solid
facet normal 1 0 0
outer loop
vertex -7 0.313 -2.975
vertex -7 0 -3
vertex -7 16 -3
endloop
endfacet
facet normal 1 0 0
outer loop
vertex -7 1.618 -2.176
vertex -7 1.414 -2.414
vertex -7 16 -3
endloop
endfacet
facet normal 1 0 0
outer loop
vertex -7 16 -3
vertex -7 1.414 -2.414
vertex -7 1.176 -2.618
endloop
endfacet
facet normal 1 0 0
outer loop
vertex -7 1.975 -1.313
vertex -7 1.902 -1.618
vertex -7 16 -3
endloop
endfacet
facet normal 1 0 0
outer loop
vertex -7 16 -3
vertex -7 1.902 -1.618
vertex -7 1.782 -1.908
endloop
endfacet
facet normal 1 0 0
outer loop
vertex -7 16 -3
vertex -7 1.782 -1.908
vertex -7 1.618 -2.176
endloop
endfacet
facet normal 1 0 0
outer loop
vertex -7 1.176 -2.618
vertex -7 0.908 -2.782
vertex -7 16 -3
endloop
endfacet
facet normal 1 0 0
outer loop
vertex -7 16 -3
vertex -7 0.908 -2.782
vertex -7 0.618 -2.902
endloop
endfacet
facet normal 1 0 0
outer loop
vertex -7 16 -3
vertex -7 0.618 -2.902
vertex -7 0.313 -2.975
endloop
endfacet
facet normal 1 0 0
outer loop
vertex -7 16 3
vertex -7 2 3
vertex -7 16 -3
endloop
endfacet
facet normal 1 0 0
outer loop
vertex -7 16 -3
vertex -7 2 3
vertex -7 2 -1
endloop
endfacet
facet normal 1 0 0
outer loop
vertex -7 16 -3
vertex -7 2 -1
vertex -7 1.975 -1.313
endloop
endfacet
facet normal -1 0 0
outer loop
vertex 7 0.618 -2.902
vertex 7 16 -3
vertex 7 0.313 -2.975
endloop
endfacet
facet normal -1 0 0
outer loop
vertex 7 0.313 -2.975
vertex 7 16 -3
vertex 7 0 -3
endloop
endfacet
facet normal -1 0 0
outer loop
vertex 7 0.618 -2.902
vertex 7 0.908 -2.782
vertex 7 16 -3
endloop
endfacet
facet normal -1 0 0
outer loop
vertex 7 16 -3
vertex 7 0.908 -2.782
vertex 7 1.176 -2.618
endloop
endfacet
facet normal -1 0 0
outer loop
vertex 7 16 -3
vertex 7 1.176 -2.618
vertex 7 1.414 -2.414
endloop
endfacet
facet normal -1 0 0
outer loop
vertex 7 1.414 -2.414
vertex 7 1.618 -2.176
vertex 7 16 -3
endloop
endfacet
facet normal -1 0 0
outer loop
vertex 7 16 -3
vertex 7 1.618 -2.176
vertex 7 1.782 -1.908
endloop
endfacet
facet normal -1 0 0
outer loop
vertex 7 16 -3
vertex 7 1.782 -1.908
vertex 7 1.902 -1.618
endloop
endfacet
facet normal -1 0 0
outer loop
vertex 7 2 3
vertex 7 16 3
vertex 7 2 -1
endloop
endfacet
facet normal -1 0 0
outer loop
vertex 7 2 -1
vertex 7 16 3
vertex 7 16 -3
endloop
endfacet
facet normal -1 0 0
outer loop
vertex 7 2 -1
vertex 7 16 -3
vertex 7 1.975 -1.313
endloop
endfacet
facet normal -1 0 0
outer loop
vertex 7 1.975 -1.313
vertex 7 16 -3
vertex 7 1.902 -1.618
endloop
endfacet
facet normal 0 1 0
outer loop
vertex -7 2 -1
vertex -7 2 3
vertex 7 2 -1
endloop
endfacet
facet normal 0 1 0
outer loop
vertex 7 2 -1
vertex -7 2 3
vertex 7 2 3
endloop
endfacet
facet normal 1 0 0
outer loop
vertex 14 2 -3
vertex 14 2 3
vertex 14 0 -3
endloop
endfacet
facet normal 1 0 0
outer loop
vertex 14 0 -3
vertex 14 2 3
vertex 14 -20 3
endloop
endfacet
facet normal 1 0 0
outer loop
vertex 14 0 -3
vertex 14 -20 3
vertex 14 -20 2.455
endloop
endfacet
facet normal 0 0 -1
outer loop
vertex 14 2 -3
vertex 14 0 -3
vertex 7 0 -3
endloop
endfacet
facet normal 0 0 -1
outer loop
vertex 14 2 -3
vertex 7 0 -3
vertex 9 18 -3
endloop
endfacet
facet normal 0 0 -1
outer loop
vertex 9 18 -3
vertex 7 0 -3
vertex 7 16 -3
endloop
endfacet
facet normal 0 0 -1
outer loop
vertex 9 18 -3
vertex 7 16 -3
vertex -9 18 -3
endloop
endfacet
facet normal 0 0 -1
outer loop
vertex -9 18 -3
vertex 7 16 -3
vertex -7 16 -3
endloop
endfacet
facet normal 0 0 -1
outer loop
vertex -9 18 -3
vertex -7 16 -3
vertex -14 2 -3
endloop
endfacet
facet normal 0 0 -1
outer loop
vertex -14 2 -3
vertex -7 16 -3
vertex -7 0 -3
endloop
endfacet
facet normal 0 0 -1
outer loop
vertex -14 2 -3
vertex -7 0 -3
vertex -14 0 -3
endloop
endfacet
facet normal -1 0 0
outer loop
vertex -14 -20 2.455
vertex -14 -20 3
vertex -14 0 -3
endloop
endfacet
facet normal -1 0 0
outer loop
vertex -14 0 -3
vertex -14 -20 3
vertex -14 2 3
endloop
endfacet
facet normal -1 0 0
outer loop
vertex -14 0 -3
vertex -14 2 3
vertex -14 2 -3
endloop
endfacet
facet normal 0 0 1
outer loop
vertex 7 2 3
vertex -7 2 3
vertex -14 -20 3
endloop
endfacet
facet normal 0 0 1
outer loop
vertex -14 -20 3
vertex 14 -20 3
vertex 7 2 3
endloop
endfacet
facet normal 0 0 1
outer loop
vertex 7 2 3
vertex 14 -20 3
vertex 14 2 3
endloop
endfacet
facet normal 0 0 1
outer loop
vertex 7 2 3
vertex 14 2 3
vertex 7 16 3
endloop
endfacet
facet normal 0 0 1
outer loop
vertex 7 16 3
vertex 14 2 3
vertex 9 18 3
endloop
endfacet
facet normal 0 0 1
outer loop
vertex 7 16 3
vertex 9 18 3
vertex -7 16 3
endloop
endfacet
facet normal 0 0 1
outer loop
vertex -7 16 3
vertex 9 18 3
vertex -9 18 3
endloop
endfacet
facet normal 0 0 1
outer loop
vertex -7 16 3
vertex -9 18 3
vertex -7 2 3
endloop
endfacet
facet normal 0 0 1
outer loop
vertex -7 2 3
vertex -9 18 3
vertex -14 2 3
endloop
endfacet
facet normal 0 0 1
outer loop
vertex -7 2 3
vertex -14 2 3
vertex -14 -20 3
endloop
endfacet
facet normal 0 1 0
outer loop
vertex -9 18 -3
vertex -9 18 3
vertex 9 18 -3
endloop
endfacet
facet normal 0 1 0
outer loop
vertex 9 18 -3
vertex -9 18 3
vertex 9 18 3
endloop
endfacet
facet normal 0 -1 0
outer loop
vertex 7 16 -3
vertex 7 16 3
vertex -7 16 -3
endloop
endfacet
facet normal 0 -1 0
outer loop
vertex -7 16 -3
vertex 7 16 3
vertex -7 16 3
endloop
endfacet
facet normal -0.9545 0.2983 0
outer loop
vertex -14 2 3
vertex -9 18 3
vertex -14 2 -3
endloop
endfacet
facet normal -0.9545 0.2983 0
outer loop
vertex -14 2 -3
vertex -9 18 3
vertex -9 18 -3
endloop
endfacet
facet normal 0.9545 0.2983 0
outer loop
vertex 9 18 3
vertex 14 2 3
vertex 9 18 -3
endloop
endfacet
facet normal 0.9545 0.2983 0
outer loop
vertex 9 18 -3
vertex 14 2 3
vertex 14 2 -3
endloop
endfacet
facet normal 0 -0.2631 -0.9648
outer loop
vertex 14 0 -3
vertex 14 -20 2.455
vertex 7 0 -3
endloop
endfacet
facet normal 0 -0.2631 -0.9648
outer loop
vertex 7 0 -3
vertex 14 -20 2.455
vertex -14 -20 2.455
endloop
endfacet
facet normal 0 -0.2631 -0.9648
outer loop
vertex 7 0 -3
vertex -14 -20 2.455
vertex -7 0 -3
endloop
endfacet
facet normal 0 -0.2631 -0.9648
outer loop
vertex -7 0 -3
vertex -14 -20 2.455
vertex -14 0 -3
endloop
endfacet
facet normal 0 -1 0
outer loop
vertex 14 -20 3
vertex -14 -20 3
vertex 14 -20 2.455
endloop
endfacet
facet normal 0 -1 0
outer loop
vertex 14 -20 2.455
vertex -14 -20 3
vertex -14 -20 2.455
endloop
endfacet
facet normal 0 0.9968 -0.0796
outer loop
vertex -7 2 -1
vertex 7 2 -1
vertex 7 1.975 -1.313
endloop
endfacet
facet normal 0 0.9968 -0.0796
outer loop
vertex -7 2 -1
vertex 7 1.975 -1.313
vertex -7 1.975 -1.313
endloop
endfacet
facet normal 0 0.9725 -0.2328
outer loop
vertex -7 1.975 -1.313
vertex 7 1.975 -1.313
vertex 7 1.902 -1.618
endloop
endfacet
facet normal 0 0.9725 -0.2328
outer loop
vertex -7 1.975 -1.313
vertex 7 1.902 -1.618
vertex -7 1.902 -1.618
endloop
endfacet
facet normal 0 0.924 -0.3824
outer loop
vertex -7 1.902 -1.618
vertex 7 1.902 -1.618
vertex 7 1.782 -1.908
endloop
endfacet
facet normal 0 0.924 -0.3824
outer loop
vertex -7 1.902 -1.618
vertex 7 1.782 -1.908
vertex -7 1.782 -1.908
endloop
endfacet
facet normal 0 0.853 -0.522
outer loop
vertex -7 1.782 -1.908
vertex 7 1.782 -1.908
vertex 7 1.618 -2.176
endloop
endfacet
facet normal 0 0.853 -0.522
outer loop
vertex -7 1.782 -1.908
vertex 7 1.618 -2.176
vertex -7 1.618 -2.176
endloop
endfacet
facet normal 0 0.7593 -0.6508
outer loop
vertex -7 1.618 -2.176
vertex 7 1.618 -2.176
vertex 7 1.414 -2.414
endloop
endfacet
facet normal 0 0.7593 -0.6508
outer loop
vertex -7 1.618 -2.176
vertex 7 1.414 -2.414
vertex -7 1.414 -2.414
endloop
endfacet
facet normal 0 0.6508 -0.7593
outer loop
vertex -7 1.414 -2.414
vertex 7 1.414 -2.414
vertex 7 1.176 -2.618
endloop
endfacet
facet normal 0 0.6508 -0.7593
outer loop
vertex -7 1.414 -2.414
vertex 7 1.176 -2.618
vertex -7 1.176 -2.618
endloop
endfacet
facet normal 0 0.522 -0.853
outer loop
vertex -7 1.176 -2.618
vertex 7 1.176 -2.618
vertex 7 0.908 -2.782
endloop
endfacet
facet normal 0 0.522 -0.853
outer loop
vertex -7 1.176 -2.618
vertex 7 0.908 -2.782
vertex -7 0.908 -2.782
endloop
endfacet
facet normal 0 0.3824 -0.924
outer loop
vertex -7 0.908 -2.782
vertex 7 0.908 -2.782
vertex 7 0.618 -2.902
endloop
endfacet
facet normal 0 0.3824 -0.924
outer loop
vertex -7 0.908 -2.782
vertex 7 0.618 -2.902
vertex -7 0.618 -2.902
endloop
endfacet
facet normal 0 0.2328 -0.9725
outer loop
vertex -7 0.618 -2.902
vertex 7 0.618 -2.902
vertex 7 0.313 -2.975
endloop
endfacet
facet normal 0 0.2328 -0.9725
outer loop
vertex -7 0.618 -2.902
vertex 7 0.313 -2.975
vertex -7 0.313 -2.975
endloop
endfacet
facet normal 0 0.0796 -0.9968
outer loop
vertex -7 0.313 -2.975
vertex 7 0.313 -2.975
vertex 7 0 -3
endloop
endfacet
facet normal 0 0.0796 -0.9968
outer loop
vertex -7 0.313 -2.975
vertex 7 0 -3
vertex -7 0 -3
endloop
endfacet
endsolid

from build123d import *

# Parameters (mm, degrees)
SKETCH1_W           = 28
SKETCH1_H           = 6
BOSS_EXTRUDE1_DEPTH = 2
SKETCH2_W           = 7
SKETCH2_H           = 6
BOSS_EXTRUDE2_DEPTH = 16
SKETCH3_W           = 6
SKETCH3_H           = 2
BOSS_EXTRUDE3_DEPTH = 14
CUT_EXTRUDE1_DEPTH  = 24.579652245
SKETCH5_W           = 28
SKETCH5_H           = 6
BOSS_EXTRUDE4_DEPTH = 22
CUT_EXTRUDE2_DEPTH  = 30
CUT_EXTRUDE3_DEPTH  = 30
FILLET1_R           = 2


with BuildPart() as part:
    # Sketch1 → Boss-Extrude1 (new body)
    with BuildSketch(Plane(origin=(0, 0, 0), x_dir=(1, 0, 0), z_dir=(0, 1, 0))):
        Rectangle(SKETCH1_W, SKETCH1_H)
    extrude(amount=BOSS_EXTRUDE1_DEPTH)

    # Sketch2 → Boss-Extrude2 (add)
    with BuildSketch(Plane(origin=(0, 2, 0), x_dir=(1, 0, 0), z_dir=(0, 1, 0))):
        with Locations((-10.5, 0)):
            Rectangle(SKETCH2_W, SKETCH2_H)
        with Locations((10.5, 0)):
            Rectangle(SKETCH2_W, SKETCH2_H)
    extrude(amount=BOSS_EXTRUDE2_DEPTH)

    # Sketch3 → Boss-Extrude3 (add)
    with BuildSketch(Plane(origin=(-7, 0, 0), x_dir=(0, 0, -1), z_dir=(1, 0, 0))):
        with Locations((0, 17)):
            Rectangle(SKETCH3_W, SKETCH3_H)
    extrude(amount=BOSS_EXTRUDE3_DEPTH)

    # Sketch4 → Cut-Extrude1 (cut, through all)
    with BuildSketch(Plane(origin=(0, 0, -3), x_dir=(-1, 0, 0), z_dir=(0, 0, -1))):
        Polygon((-9, 18), (-14, 18), (-14, 2), align=None)
        Polygon((9, 18), (14, 18), (14, 2), align=None)
    extrude(amount=-CUT_EXTRUDE1_DEPTH, mode=Mode.SUBTRACT)

    # Sketch5 → Boss-Extrude4 (add)
    with BuildSketch(Plane.XZ):
        Rectangle(SKETCH5_W, SKETCH5_H)
    extrude(amount=BOSS_EXTRUDE4_DEPTH)

    # Sketch6 → Cut-Extrude2 (cut)
    with BuildSketch(Plane(origin=(14, 0, 0), x_dir=(0, 0, -1), z_dir=(1, 0, 0))):
        Polygon((3, 0), (-3, -22), (3, -22), align=None)
    extrude(amount=-CUT_EXTRUDE2_DEPTH, mode=Mode.SUBTRACT)

    # Sketch7 → Cut-Extrude3 (cut)
    with BuildSketch(Plane(origin=(14, 0, 0), x_dir=(0, 0, -1), z_dir=(1, 0, 0))):
        Polygon((-3, -22), (-3, -20), (-2.454545455, -20), align=None)
    extrude(amount=-CUT_EXTRUDE3_DEPTH, mode=Mode.SUBTRACT)

    # Fillet1
    fillet1_edges = [part.edges().sort_by_distance(p)[0] for p in [
        (0, 2, -3),
    ]]
    fillet(fillet1_edges, radius=FILLET1_R - 0.0001)  # a hair under: the kernel refuses the full size


solid = part.part
